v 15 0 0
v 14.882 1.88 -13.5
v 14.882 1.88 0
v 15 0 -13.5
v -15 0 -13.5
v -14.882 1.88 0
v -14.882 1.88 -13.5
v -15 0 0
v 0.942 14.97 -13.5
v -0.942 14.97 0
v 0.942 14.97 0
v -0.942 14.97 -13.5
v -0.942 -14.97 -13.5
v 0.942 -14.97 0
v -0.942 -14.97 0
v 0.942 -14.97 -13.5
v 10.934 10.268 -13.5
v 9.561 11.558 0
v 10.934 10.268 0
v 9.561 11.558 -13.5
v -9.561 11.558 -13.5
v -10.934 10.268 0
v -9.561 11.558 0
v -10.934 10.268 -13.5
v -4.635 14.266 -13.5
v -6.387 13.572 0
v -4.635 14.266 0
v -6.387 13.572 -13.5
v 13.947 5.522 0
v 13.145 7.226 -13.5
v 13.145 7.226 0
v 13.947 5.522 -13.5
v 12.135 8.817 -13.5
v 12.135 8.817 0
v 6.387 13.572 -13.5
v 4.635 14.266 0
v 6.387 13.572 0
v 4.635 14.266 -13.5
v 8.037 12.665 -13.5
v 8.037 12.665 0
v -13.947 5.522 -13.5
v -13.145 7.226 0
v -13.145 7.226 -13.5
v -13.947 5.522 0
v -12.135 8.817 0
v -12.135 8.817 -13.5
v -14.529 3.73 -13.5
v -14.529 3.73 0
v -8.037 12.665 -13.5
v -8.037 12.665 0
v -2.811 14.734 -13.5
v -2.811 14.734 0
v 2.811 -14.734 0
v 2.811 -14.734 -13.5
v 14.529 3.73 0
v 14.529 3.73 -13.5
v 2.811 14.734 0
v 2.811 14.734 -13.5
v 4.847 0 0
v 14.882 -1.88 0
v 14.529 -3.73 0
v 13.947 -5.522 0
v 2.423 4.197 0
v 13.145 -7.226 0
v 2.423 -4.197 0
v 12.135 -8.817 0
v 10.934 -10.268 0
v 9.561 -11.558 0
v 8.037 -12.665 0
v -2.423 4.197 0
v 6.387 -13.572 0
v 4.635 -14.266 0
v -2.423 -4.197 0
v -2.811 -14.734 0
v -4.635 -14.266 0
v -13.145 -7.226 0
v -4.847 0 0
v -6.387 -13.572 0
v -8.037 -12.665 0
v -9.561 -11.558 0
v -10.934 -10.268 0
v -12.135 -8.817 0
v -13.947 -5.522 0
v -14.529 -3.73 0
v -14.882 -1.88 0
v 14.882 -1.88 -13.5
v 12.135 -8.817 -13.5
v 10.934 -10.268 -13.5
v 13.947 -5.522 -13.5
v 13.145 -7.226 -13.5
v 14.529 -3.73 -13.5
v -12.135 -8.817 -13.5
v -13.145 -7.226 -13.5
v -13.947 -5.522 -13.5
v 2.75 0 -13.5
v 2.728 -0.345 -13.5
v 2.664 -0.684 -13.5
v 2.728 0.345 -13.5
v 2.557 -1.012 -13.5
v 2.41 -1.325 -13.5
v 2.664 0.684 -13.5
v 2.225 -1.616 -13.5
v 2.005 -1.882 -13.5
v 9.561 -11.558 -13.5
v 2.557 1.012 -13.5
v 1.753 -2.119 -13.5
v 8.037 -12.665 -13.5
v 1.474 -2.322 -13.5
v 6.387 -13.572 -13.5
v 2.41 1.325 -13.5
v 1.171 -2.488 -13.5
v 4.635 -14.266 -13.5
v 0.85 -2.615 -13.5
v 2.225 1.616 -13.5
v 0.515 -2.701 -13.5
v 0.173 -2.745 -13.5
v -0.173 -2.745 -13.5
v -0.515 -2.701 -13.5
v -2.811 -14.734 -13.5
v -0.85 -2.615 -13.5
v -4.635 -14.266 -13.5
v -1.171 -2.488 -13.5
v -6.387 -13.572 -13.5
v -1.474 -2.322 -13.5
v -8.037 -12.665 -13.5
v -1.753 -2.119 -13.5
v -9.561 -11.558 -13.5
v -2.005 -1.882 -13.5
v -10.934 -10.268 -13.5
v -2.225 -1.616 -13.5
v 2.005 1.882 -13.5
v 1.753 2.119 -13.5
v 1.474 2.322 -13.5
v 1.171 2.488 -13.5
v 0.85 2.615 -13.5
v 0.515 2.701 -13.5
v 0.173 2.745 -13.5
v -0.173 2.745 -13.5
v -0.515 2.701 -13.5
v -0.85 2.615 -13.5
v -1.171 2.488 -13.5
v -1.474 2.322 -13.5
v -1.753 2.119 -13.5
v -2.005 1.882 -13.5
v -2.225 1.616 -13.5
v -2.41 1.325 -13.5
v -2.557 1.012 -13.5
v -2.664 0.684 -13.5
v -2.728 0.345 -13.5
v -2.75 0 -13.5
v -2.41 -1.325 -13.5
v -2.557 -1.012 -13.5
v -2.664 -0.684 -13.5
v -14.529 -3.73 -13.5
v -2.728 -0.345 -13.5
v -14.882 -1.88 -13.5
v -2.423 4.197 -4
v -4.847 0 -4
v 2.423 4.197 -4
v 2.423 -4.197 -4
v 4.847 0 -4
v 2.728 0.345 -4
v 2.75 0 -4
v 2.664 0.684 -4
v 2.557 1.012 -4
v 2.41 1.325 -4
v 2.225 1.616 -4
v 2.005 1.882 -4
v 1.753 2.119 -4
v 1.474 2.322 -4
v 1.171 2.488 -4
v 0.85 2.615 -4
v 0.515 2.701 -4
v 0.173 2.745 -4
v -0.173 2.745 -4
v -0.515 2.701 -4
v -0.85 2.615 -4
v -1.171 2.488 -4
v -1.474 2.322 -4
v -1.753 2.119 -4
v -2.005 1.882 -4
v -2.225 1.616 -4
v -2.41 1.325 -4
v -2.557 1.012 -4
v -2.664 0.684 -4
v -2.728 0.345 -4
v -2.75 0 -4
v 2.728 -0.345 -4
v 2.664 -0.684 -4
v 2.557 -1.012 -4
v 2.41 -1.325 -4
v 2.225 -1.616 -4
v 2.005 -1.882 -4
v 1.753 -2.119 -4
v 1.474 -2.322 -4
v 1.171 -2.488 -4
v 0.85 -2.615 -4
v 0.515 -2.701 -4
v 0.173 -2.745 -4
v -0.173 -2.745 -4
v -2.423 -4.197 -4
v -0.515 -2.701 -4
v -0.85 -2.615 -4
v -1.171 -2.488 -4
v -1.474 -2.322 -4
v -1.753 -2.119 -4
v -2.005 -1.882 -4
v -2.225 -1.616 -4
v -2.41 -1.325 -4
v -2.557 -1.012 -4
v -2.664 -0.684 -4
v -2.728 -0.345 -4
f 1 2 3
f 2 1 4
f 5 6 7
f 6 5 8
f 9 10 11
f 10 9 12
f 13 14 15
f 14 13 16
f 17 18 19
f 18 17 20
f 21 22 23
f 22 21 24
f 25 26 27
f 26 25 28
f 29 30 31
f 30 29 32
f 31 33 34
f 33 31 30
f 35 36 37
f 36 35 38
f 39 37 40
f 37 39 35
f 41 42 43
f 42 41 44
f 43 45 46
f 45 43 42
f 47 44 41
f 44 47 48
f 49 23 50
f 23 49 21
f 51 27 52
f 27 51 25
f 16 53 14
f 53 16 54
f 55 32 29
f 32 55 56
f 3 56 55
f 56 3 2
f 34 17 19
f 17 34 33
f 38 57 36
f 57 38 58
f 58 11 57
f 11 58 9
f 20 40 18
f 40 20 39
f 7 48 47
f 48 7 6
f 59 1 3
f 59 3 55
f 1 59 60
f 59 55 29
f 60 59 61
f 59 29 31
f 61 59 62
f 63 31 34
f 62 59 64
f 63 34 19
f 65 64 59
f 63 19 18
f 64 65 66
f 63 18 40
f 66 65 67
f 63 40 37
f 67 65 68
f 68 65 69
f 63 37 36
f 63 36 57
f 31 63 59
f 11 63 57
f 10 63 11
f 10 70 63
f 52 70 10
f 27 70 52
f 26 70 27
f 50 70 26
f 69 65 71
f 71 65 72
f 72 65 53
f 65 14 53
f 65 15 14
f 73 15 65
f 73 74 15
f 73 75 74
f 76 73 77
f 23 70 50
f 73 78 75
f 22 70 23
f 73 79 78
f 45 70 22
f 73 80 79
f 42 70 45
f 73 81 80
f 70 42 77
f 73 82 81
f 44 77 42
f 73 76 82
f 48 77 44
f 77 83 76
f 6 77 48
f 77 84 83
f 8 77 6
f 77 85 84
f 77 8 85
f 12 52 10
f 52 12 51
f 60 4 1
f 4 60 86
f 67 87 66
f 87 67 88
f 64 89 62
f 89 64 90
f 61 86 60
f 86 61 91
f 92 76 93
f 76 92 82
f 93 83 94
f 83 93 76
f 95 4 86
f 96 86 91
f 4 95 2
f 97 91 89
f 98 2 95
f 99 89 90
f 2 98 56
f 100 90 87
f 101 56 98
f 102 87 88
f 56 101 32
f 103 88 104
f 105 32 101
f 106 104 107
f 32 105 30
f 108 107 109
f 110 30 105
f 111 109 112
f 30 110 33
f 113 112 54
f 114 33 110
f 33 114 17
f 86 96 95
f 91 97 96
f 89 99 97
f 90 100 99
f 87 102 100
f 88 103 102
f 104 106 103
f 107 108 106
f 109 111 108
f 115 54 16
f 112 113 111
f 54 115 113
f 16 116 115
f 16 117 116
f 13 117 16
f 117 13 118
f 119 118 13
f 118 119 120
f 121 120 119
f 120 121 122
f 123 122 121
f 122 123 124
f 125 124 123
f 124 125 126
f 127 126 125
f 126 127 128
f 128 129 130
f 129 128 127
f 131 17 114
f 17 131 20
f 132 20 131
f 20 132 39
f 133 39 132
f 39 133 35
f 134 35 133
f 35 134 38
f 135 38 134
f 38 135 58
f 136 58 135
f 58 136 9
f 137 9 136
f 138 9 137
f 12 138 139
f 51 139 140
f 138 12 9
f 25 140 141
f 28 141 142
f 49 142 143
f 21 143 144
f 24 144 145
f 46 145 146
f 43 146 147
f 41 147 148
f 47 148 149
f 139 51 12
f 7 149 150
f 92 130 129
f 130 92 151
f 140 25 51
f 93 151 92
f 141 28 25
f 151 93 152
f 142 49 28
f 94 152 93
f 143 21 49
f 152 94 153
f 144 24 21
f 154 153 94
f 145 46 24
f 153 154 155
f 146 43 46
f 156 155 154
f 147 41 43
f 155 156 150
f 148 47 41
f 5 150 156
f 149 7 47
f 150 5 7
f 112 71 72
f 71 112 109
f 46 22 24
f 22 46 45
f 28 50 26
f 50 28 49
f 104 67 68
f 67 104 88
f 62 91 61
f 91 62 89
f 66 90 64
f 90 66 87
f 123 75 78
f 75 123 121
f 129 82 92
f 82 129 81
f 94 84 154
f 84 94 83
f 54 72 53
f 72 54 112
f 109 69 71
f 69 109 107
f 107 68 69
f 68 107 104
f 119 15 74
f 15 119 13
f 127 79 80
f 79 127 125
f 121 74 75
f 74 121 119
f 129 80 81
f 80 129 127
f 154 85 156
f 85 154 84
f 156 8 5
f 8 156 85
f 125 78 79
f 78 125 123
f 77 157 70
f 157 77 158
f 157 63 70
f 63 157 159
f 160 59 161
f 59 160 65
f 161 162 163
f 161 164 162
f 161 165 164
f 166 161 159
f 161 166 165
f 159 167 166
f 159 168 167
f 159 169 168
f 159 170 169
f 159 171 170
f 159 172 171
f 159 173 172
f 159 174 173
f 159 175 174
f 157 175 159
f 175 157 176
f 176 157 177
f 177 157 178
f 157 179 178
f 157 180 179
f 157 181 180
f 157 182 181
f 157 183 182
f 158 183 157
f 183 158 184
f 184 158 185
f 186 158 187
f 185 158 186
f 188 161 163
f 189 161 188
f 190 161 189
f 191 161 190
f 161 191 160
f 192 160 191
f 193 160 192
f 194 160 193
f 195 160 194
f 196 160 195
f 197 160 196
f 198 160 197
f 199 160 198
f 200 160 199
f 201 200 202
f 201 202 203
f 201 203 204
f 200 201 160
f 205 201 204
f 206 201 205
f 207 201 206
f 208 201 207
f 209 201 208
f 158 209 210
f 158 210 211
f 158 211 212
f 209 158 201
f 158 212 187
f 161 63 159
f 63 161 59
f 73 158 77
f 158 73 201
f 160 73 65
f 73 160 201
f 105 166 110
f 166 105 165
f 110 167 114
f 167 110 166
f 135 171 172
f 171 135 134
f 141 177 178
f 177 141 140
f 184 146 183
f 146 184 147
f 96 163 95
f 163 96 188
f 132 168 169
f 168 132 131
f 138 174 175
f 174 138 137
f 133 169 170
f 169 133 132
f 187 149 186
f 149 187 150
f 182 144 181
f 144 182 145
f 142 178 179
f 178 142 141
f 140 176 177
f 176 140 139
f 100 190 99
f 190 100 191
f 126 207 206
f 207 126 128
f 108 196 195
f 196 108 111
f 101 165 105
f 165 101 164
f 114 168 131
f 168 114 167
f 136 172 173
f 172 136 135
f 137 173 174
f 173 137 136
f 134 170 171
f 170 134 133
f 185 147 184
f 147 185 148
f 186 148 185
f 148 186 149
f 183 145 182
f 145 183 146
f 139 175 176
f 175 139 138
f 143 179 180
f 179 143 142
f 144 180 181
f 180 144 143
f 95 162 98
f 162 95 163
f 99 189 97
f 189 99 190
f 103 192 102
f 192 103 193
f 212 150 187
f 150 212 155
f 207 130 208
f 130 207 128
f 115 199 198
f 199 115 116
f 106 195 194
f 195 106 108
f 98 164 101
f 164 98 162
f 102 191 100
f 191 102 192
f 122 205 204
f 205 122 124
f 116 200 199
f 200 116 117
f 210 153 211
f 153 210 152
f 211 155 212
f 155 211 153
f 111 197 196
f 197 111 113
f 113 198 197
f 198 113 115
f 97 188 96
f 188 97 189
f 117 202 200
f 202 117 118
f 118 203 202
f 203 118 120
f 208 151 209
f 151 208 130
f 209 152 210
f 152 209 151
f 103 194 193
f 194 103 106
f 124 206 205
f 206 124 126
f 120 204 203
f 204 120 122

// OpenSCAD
$fn = 50;


difference() {
	union() {
		translate(v = [0, 0, -13.5000000000]) {
			cylinder(h = 13.5000000000, r = 15.0000000000);
		}
		translate(v = [0, 0, -12.0000000000]) {
			cylinder(h = 12, r = 2.8750000000);
		}
	}
	union() {
		translate(v = [0, 0, 0]) {
			rotate(a = [0, 0, 0]) {
				difference() {
					union() {
						translate(v = [0, 0, -4]) {
							linear_extrude(height = 4) {
								polygon(points = [[4.8468000000, 0.0000000000], [2.4234000000, 4.1974519271], [-2.4234000000, 4.1974519271], [-4.8468000000, 0.0000000000], [-2.4234000000, -4.1974519271], [2.4234000000, -4.1974519271]]);
							}
						}
					}
					union();
				}
			}
		}
		#translate(v = [0, 0, -100.0000000000]) {
			cylinder(h = 200, r = 2.7500000000);
		}
	}
}
